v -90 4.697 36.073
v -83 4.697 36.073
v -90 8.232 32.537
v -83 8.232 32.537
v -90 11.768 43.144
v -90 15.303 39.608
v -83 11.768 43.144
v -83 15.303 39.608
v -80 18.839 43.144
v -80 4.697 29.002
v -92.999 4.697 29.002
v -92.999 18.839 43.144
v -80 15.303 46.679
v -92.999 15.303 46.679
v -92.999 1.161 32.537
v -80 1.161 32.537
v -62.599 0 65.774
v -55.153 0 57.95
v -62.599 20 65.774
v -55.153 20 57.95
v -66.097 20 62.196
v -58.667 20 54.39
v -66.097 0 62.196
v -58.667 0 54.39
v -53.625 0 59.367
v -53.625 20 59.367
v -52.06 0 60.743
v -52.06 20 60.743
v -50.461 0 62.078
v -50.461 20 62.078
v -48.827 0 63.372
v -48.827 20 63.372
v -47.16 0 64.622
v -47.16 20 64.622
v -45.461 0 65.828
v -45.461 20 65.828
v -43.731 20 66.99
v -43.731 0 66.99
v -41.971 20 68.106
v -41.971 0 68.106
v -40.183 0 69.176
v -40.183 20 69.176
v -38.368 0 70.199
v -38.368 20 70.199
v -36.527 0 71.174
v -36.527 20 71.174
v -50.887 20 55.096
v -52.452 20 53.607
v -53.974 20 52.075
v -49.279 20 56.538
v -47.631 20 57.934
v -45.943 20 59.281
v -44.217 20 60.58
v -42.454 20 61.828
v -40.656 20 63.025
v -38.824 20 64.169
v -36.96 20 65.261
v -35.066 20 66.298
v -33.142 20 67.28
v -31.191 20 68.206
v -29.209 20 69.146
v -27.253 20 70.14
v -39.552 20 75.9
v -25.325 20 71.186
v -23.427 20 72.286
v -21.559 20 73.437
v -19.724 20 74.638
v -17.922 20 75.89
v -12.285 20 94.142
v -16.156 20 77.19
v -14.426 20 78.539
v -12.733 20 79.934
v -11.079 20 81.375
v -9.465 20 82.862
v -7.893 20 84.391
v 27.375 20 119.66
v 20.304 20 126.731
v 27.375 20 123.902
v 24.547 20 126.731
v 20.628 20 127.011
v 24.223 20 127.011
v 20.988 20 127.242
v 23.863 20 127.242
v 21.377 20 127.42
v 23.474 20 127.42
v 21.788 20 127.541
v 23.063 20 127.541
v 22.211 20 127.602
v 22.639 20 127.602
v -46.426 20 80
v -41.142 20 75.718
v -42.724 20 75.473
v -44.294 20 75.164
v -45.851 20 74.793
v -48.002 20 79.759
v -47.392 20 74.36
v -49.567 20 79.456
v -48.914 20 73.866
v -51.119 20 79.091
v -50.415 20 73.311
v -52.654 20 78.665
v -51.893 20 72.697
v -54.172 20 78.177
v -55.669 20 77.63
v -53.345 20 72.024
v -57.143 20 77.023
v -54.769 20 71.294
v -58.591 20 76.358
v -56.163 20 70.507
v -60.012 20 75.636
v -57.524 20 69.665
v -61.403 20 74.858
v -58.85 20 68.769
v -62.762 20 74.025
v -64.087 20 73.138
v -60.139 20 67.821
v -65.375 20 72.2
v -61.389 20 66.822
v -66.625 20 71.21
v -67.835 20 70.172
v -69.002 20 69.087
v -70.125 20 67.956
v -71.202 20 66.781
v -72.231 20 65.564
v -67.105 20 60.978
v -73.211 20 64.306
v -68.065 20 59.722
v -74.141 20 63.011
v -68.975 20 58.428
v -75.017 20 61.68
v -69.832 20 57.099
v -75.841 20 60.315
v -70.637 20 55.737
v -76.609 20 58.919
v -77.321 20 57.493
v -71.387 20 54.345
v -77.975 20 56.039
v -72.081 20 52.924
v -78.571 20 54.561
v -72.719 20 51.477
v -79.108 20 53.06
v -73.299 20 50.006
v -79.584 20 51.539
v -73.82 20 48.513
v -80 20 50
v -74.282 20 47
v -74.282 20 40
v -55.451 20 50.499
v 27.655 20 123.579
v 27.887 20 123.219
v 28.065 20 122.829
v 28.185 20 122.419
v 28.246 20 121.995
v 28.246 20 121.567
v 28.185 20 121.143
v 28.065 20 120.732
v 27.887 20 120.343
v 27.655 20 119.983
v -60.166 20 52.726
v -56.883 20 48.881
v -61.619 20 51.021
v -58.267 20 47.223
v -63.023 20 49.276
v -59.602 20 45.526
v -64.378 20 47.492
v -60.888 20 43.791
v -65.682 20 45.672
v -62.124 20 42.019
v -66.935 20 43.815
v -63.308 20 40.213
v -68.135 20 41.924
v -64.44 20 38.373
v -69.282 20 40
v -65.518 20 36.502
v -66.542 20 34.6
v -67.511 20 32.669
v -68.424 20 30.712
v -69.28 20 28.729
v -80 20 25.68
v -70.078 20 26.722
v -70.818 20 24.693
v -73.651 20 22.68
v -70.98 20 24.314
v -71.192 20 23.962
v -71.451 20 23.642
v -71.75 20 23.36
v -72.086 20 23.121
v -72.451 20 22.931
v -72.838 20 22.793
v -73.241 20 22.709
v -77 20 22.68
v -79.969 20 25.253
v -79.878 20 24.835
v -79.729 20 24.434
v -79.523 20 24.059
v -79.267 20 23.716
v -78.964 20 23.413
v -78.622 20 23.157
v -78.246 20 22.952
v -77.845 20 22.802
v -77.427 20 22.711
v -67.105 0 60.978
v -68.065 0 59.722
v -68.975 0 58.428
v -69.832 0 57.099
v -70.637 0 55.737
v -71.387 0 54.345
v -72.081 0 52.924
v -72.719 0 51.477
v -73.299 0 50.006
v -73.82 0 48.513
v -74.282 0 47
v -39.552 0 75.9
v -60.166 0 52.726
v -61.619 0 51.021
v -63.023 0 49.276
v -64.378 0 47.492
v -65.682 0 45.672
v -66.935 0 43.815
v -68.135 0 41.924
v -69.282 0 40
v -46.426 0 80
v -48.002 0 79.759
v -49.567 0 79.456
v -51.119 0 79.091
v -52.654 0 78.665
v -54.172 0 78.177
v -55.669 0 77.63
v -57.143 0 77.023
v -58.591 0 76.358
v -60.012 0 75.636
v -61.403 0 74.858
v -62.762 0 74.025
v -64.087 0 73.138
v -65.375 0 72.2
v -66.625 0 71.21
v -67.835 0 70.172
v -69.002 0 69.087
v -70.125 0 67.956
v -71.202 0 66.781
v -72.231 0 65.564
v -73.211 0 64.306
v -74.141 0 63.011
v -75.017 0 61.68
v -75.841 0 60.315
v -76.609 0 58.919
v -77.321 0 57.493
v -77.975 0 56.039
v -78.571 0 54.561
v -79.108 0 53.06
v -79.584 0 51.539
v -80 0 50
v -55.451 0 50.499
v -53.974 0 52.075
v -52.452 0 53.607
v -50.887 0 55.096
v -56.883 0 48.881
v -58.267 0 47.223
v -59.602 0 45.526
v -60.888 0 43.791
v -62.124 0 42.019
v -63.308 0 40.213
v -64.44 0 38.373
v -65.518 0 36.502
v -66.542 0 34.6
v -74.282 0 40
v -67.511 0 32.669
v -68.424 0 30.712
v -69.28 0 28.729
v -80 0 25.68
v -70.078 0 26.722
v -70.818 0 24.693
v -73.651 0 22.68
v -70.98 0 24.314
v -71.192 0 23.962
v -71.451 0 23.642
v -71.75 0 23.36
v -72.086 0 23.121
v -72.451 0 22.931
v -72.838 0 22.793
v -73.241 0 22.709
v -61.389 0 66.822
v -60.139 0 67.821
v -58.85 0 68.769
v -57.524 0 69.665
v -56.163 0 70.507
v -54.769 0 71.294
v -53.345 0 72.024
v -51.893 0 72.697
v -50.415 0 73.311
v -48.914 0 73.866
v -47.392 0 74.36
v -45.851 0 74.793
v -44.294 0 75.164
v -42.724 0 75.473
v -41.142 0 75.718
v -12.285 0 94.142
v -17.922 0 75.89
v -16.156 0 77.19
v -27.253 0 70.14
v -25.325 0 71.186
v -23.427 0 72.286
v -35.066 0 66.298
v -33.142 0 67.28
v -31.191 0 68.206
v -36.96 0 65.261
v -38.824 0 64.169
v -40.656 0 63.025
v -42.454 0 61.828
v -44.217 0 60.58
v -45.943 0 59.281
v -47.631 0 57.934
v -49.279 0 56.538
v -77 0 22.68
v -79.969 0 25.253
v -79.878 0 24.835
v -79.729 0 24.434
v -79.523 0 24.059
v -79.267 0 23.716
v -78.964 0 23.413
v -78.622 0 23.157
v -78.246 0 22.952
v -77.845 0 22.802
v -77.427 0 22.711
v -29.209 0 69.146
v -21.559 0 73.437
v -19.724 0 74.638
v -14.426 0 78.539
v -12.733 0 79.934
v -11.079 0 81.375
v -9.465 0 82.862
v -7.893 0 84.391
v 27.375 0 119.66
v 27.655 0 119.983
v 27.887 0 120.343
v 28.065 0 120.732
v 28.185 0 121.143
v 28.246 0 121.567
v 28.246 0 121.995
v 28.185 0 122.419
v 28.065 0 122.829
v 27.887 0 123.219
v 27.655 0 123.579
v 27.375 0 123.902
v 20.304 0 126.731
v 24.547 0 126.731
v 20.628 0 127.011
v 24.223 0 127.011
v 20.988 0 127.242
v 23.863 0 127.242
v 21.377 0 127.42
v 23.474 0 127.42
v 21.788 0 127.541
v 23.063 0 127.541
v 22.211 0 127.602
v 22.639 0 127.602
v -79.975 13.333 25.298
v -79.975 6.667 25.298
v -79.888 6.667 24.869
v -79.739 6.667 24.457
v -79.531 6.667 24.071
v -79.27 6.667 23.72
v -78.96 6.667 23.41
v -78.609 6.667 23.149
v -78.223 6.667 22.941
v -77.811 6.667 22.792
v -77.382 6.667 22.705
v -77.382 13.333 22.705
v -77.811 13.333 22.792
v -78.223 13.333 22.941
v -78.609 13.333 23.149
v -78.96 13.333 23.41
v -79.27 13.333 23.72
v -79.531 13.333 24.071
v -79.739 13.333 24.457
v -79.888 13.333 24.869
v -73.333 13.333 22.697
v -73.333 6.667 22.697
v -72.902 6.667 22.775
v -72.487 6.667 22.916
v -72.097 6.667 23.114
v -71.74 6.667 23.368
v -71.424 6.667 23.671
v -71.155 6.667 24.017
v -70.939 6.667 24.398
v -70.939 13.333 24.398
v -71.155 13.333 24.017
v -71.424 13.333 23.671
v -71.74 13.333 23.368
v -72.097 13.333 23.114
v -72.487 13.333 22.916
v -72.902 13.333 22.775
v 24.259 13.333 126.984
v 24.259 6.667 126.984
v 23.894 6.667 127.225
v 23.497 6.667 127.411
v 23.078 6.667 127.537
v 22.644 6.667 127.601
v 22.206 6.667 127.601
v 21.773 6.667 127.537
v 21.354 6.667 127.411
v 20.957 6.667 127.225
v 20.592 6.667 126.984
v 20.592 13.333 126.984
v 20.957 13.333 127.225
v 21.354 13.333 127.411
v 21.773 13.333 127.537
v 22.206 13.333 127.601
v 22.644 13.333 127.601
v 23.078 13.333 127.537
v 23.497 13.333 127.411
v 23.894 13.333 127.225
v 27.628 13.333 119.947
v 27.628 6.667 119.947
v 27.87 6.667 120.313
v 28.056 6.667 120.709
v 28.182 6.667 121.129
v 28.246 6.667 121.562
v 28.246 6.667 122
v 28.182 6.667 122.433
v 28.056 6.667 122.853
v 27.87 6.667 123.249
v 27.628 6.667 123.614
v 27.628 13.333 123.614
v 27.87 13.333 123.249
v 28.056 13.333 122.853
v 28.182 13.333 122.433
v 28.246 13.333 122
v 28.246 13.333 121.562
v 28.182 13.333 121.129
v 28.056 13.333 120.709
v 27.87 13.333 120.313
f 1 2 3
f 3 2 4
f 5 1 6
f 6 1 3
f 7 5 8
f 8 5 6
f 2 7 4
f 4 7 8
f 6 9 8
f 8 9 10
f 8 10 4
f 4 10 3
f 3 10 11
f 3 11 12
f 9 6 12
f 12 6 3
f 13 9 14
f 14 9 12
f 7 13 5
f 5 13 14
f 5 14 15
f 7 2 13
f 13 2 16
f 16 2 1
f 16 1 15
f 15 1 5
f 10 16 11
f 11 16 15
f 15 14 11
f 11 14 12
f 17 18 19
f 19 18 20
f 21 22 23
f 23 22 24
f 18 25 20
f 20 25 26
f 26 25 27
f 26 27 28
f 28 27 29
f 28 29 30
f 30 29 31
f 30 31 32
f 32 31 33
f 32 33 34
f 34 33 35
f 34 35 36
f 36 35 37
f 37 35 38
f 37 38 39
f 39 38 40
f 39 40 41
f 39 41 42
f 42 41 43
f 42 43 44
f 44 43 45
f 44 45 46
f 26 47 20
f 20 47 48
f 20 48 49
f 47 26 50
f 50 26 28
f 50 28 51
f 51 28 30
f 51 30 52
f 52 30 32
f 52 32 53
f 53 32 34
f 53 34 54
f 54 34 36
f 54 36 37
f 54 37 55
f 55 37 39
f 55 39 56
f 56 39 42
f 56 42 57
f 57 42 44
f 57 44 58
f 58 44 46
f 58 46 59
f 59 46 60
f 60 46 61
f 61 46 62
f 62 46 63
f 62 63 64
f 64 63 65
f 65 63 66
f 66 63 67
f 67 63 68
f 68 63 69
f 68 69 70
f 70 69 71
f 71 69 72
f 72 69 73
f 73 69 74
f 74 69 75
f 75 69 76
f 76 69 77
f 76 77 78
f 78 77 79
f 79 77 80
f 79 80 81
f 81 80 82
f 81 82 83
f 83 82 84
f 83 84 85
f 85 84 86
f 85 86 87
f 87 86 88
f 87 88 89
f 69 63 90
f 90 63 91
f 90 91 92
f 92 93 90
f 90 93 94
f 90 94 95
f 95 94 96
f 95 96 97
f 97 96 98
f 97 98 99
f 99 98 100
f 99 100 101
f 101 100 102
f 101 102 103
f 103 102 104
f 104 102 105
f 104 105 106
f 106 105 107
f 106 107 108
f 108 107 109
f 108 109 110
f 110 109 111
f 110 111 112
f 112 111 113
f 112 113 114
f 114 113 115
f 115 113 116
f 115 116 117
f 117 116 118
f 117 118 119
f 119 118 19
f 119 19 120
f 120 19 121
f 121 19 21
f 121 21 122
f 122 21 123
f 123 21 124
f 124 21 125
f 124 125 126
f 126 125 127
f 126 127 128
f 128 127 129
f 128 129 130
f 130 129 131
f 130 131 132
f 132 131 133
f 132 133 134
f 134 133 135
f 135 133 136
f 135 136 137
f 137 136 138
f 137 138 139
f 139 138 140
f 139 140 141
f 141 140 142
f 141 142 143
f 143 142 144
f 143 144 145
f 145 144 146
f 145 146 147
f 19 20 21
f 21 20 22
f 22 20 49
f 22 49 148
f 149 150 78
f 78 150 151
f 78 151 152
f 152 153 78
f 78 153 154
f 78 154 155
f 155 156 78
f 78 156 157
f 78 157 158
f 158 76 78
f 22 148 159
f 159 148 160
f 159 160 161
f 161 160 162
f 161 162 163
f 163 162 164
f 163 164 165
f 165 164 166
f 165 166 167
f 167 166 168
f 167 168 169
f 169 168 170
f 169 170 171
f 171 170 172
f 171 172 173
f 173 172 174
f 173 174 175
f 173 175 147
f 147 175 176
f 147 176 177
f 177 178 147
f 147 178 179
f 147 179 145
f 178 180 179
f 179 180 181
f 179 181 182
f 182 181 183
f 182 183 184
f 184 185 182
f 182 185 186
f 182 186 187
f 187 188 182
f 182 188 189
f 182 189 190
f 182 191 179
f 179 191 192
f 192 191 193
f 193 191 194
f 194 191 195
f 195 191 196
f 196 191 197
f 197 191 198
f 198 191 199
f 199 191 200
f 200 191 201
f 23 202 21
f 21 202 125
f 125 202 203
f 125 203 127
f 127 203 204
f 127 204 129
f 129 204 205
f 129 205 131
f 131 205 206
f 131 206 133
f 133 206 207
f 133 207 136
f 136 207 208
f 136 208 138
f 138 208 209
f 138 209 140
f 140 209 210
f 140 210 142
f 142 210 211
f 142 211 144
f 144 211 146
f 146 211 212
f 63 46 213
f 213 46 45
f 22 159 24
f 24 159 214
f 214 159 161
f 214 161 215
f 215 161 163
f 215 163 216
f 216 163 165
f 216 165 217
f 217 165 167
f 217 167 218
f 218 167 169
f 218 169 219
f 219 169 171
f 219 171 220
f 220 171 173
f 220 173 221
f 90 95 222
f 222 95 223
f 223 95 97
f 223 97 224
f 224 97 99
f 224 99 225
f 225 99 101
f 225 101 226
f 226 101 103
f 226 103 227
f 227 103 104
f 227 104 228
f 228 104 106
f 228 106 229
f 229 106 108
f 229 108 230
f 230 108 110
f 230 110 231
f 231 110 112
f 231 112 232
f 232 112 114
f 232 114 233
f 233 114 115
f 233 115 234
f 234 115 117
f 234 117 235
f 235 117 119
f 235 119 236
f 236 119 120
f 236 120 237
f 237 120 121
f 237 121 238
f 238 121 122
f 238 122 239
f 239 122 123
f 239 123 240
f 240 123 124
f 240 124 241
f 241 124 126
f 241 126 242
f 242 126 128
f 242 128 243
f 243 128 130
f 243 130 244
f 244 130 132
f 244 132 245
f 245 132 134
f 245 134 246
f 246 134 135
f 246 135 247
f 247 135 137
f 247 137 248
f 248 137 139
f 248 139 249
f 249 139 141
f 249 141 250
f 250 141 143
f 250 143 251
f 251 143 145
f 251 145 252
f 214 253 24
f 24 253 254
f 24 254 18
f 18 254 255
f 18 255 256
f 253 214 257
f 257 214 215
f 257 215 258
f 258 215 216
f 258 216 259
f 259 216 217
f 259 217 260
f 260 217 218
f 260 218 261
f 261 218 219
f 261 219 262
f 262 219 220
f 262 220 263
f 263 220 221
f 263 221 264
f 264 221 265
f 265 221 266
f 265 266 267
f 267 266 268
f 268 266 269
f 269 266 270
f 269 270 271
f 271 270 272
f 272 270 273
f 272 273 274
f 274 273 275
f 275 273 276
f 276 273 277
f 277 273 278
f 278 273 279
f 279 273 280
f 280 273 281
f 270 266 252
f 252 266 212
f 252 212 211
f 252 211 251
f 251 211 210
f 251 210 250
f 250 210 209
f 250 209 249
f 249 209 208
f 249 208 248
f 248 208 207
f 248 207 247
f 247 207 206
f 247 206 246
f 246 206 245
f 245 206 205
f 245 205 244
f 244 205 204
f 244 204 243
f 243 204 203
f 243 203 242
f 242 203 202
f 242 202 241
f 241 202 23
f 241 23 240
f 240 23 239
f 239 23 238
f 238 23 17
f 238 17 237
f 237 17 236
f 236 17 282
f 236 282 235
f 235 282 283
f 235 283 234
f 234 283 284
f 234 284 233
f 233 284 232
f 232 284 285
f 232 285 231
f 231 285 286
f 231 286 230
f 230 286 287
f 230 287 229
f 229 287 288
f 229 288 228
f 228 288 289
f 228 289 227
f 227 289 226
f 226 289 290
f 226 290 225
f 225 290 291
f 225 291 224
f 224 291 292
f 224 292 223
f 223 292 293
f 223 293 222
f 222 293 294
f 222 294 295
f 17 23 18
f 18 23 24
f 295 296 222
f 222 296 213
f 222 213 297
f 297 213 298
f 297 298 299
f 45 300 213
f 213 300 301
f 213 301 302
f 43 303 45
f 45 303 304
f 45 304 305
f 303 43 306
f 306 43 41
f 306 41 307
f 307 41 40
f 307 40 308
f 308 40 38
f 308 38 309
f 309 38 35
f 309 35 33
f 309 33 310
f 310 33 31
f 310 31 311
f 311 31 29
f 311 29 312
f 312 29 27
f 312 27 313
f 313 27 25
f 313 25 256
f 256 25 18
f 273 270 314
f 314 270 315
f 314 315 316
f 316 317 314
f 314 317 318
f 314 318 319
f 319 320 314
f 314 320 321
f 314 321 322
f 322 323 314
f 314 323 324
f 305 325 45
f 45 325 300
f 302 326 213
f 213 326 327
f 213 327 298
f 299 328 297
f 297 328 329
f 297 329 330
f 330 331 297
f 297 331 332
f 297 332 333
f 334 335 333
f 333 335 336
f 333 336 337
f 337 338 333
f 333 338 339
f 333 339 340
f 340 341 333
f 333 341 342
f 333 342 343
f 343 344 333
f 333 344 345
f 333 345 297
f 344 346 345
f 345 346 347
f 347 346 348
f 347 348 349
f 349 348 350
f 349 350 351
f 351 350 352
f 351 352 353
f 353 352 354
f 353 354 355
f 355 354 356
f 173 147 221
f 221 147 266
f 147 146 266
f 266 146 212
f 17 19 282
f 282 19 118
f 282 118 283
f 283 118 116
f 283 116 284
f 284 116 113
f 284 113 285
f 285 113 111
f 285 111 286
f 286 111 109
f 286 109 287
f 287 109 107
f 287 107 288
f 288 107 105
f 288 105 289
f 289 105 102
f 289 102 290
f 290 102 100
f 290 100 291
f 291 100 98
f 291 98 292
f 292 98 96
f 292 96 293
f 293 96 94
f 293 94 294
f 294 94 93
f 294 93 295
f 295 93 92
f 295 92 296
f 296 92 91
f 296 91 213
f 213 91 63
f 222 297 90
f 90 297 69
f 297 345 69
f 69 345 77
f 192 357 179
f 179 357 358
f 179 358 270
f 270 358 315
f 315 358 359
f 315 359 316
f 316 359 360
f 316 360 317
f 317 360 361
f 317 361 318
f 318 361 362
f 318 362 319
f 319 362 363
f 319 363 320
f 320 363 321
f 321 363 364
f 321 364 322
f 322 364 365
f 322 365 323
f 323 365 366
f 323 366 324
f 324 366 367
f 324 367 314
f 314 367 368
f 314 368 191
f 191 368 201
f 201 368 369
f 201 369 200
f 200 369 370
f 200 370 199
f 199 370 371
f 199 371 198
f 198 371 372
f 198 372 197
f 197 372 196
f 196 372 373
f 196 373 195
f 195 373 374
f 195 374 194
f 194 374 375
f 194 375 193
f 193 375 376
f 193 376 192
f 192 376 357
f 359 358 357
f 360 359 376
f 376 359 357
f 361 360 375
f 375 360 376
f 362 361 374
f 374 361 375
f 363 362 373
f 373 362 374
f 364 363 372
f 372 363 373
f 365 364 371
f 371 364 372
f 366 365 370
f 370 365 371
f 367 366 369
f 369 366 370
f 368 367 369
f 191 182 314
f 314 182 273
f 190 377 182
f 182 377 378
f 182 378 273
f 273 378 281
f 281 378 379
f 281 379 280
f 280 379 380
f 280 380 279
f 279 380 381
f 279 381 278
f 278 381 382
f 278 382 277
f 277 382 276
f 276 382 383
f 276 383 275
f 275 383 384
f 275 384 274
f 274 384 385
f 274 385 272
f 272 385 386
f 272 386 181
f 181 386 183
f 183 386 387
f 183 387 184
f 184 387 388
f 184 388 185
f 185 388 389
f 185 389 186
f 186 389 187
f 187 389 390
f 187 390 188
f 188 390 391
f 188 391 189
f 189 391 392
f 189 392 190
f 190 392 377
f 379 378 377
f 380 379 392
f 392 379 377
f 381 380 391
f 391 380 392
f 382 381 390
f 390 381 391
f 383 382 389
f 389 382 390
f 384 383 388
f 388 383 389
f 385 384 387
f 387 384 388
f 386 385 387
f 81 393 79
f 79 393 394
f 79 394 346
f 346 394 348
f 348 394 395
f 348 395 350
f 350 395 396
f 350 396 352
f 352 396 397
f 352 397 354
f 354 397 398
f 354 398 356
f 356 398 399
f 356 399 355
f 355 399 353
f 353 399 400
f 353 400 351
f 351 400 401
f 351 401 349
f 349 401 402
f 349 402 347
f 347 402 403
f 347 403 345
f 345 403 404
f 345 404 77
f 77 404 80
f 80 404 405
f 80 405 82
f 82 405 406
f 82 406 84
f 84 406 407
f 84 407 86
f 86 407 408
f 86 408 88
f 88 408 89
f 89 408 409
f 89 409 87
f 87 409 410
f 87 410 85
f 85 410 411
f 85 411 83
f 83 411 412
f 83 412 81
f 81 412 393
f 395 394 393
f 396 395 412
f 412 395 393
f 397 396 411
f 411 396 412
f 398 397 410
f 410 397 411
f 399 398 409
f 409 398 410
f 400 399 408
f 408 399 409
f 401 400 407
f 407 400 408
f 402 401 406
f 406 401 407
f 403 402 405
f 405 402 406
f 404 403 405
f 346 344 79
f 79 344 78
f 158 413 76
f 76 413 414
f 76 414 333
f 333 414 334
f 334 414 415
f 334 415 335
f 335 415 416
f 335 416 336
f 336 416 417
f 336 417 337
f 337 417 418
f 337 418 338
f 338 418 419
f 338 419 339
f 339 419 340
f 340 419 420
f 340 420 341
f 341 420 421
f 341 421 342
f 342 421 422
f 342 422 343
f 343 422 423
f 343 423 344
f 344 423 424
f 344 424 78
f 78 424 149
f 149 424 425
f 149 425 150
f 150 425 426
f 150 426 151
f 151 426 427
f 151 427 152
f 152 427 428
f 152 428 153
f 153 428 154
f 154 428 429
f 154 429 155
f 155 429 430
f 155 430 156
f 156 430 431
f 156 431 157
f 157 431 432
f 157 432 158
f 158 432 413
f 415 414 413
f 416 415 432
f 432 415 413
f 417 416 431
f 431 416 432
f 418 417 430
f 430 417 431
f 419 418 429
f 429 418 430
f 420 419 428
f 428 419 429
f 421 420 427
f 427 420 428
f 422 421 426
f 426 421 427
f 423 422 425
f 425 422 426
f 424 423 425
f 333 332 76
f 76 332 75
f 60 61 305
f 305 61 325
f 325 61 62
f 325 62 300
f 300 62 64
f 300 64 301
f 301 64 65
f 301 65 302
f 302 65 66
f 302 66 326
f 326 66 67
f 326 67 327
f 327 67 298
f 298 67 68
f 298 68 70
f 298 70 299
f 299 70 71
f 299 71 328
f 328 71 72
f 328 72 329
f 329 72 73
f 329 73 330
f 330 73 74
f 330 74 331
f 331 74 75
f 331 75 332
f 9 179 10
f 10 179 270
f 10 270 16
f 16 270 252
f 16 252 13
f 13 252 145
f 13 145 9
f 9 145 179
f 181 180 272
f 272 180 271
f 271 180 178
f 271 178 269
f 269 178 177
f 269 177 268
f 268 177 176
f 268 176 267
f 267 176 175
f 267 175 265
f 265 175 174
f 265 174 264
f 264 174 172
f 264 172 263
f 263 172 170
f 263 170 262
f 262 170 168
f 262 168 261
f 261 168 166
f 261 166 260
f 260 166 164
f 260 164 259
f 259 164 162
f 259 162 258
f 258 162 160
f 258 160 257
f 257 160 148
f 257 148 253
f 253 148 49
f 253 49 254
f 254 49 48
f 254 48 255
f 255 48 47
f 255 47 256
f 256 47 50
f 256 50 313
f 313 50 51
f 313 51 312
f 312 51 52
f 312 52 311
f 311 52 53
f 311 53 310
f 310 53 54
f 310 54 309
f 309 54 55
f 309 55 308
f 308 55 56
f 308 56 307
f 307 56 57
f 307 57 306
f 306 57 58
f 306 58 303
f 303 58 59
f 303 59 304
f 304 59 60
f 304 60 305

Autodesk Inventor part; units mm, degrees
ref_plane "YZ Plane" through (0, 0, 0) normal (1, 0, 0) x (0, 1, 0)
ref_plane "XZ Plane" through (0, 0, 0) normal (0, 1, 0) x (-1, 0, 0)
ref_plane "XY Plane" through (0, 0, 0) normal (0, 0, 1) x (1, 0, 0)
sketch "Boceto1" plane through (0, 0, 0) normal (0, 1, 0) x (-1, 0, 0)
  line L0 (80, 47.68) -> (80, 52.68)
  line L1 (80, 47.68) -> (80, 22.68)
  line L2 (80, 22.68) -> (75, 22.68)
  line L3 (75, 22.68) -> (71.4886, 22.68)
  line L4 (80, 80) -> (80, 52.68)
  line L5 (20, 72.2842) -> (-29.4975, 121.7816)
  line L6 (20, 72.2842) -> (90, 72.2842) construction
  line L7 (-29.4975, 121.7816) -> (-22.4264, 128.8527)
  line L8 (29.9618, 80) -> (80, 80)
  arc A0 (71.4886, 22.68) -> (20, 72.2842) centre (0, 0) ccw
  line L9 (-22.4264, 128.8527) -> (26.4263, 80)
  line L10 (26.4263, 80) -> (29.9618, 80)
  dimension "d4" = 5
  dimension "d5" = 25
  dimension "d21" = 70
  dimension "d22" = 135
  dimension "d23" = 10
extrude "Extrusión5" add sketch "Boceto1" along normal blind 20
fillet "Empalme3" radius 80 1 edges at (-20, 10, 72.2842)
fillet "Empalme4" radius 3 4 edges at (29.4975, 10, 121.7816) (22.4264, 10, 128.8527) (-71.4886, 10, 22.68) (-80, 10, 22.68)
fillet "Empalme5" radius 30 1 edges at (-80, 10, 80)
chamfer "Chaflán1" distance 20 angle 45 1 edges at (-26.4263, 10, 80)
sketch "Boceto4" plane through (0, 20, 0) normal (0, 1, 0) x (1, 0, 0)
  arc A0 (-69.282, -40) -> (-27.3616, -75.1754) centre (0, 0) ccw
  line L0 (0, 0) -> (-69.282, -40) construction
  line L1 (0, 0) -> (80, 0) construction
  line L2 (0, 0) -> (-27.3616, -75.1754) construction
  line L3 (-69.282, -40) -> (-74.282, -40)
  line L4 (-74.282, -40) -> (-74.282, -47)
  arc A1 (-74.282, -47) -> (-27.3616, -75.1754) centre (-35.8026, -36.0762) ccw
  dimension "d35" = 80
  dimension "d36" = 150
  dimension "d37" = 40
  dimension "d38" = 5
  dimension "d39" = 7
  dimension "d40" = 40
extrude "Extrusión6" cut sketch "Boceto4" against normal blind 20
sketch "Boceto5" plane through (0, 20, 0) normal (0, 1, 0) x (1, 0, 0)
  line L0 (-80, -50) -> (-80, -25.68) projected
  line L1 (-46.4263, -80) -> (-50, -80) projected
  arc A0 (-80, -50) -> (-46.4263, -80) centre (-41.1827, -40.3452) ccw
  arc A1 (-80, -50) -> (-46.4263, -80) centre (-50.0008, -50.2137) ccw
  line L2 (-27.3616, -75.1754) -> (-17.3616, -75.1754) construction
  point P0 (0, 0)
  dimension "d43" = 40
  dimension "d44" = 30
extrude "Extrusión7" cut sketch "Boceto5" against normal blind 20
sketch "Boceto6" plane through (0, 20, 0) normal (0, 1, 0) x (1, 0, 0)
  line L0 (-36.5264, -71.1746) -> (-40.1604, -76.8501)
  line L1 (-40.1604, -76.8501) -> (-29.2954, -83.1239)
  line L2 (-29.2954, -83.1239) -> (-25.1938, -76.0206)
  line L3 (-25.1938, -76.0206) -> (-24.7057, -75.1754)
  line L4 (-24.7057, -75.1754) -> (-35.8148, -69.3243)
  line L5 (-35.8148, -69.3243) -> (-36.5264, -71.1746)
  point P0 (0, 0)
  point P1 (-74.282, -47)
  dimension "d50" = 44.8319
extrude "Extrusión8" add sketch "Boceto6" against normal blind 20
sketch "Boceto7" plane through (0, 20, 0) normal (0, 1, 0) x (1, 0, 0)
  arc A0 (-69.282, -40) -> (-36.5264, -71.1746) centre (0, 0) ccw projected
  line L0 (-69.282, -40) -> (-74.282, -40) projected
  line L1 (-69.282, -40) -> (-69.282, -40)
  arc A1 (-74.282, -47) -> (-39.5521, -75.9) centre (-35.8026, -36.0762) ccw projected
  line L2 (-55.1527, -57.9498) -> (-58.6667, -54.3895)
  line L3 (-66.0968, -62.1963) -> (-58.6667, -54.3895)
  line L4 (-62.599, -65.7738) -> (-55.1527, -57.9498)
  line L5 (-66.0968, -62.1963) -> (-67.4453, -63.6132)
  line L6 (-67.4453, -63.6132) -> (-64.0789, -67.3287)
  line L7 (-64.0789, -67.3287) -> (-62.599, -65.7738)
extrude "Extrusión9" add sketch "Boceto7" against normal blind 20 contours A0 L4 A1 L3 | A1 L7 L6 L5
sketch "Boceto8" plane through (-80, 0, 25.68) normal (-1, 0, 0) x (0, 0, 1)
  point P0 (-25.68, 0)
sketch "Boceto9" plane through (-80, 0, 25.68) normal (-1, 0, 0) x (0, 0, 1)
  line L0 (0, 20) -> (24.32, 20) projected
  line L1 (0, 0) -> (0, 20) projected
  line L2 (24.32, 20) -> (24.32, 0) projected
  line L3 (-3, 20) -> (0, 20) projected
  line L4 (12.16, 10) -> (22.16, 10) construction
  line L5 (19.2311, 17.0711) -> (20.9988, 15.3033)
  line L6 (19.2311, 17.0711) -> (17.4633, 18.8388)
  line L7 (5.0889, 2.9289) -> (6.8567, 1.1612)
  line L8 (5.0889, 2.9289) -> (3.3212, 4.6967)
  line L9 (3.3212, 4.6967) -> (17.4633, 18.8388)
  line L10 (20.9988, 15.3033) -> (6.8567, 1.1612)
  point P0 (-25.68, 0)
  dimension "d56" = 10
  dimension "d58" = 10
  dimension "d59" = 2.5
  dimension "d60" = 2.5
extrude "Extrusión10" add sketch "Boceto9" along normal blind 13
sketch "Boceto10" plane through (-80, 4.6967, 29.0012) normal (0, 0.7071, -0.7071) x (-1, 0, 0)
  line L0 (13, 0) -> (13, 20) projected
  line L1 (13, 20) -> (13, 0)
  line L2 (10, 10) -> (10, 15)
  line L3 (10, 15) -> (3, 15)
  line L4 (3, 15) -> (3, 5)
  line L5 (3, 5) -> (10, 5)
  line L6 (10, 5) -> (10, 10)
  point P0 (-80, -23.828)
  dimension "d64" = 5
  dimension "d65" = 7
  dimension "d66" = 10
extrude "Extrusión11" cut sketch "Boceto10" against normal blind 13
properties part number "Positioner_Adapter_Izq" material "ABS Plastic Black"
